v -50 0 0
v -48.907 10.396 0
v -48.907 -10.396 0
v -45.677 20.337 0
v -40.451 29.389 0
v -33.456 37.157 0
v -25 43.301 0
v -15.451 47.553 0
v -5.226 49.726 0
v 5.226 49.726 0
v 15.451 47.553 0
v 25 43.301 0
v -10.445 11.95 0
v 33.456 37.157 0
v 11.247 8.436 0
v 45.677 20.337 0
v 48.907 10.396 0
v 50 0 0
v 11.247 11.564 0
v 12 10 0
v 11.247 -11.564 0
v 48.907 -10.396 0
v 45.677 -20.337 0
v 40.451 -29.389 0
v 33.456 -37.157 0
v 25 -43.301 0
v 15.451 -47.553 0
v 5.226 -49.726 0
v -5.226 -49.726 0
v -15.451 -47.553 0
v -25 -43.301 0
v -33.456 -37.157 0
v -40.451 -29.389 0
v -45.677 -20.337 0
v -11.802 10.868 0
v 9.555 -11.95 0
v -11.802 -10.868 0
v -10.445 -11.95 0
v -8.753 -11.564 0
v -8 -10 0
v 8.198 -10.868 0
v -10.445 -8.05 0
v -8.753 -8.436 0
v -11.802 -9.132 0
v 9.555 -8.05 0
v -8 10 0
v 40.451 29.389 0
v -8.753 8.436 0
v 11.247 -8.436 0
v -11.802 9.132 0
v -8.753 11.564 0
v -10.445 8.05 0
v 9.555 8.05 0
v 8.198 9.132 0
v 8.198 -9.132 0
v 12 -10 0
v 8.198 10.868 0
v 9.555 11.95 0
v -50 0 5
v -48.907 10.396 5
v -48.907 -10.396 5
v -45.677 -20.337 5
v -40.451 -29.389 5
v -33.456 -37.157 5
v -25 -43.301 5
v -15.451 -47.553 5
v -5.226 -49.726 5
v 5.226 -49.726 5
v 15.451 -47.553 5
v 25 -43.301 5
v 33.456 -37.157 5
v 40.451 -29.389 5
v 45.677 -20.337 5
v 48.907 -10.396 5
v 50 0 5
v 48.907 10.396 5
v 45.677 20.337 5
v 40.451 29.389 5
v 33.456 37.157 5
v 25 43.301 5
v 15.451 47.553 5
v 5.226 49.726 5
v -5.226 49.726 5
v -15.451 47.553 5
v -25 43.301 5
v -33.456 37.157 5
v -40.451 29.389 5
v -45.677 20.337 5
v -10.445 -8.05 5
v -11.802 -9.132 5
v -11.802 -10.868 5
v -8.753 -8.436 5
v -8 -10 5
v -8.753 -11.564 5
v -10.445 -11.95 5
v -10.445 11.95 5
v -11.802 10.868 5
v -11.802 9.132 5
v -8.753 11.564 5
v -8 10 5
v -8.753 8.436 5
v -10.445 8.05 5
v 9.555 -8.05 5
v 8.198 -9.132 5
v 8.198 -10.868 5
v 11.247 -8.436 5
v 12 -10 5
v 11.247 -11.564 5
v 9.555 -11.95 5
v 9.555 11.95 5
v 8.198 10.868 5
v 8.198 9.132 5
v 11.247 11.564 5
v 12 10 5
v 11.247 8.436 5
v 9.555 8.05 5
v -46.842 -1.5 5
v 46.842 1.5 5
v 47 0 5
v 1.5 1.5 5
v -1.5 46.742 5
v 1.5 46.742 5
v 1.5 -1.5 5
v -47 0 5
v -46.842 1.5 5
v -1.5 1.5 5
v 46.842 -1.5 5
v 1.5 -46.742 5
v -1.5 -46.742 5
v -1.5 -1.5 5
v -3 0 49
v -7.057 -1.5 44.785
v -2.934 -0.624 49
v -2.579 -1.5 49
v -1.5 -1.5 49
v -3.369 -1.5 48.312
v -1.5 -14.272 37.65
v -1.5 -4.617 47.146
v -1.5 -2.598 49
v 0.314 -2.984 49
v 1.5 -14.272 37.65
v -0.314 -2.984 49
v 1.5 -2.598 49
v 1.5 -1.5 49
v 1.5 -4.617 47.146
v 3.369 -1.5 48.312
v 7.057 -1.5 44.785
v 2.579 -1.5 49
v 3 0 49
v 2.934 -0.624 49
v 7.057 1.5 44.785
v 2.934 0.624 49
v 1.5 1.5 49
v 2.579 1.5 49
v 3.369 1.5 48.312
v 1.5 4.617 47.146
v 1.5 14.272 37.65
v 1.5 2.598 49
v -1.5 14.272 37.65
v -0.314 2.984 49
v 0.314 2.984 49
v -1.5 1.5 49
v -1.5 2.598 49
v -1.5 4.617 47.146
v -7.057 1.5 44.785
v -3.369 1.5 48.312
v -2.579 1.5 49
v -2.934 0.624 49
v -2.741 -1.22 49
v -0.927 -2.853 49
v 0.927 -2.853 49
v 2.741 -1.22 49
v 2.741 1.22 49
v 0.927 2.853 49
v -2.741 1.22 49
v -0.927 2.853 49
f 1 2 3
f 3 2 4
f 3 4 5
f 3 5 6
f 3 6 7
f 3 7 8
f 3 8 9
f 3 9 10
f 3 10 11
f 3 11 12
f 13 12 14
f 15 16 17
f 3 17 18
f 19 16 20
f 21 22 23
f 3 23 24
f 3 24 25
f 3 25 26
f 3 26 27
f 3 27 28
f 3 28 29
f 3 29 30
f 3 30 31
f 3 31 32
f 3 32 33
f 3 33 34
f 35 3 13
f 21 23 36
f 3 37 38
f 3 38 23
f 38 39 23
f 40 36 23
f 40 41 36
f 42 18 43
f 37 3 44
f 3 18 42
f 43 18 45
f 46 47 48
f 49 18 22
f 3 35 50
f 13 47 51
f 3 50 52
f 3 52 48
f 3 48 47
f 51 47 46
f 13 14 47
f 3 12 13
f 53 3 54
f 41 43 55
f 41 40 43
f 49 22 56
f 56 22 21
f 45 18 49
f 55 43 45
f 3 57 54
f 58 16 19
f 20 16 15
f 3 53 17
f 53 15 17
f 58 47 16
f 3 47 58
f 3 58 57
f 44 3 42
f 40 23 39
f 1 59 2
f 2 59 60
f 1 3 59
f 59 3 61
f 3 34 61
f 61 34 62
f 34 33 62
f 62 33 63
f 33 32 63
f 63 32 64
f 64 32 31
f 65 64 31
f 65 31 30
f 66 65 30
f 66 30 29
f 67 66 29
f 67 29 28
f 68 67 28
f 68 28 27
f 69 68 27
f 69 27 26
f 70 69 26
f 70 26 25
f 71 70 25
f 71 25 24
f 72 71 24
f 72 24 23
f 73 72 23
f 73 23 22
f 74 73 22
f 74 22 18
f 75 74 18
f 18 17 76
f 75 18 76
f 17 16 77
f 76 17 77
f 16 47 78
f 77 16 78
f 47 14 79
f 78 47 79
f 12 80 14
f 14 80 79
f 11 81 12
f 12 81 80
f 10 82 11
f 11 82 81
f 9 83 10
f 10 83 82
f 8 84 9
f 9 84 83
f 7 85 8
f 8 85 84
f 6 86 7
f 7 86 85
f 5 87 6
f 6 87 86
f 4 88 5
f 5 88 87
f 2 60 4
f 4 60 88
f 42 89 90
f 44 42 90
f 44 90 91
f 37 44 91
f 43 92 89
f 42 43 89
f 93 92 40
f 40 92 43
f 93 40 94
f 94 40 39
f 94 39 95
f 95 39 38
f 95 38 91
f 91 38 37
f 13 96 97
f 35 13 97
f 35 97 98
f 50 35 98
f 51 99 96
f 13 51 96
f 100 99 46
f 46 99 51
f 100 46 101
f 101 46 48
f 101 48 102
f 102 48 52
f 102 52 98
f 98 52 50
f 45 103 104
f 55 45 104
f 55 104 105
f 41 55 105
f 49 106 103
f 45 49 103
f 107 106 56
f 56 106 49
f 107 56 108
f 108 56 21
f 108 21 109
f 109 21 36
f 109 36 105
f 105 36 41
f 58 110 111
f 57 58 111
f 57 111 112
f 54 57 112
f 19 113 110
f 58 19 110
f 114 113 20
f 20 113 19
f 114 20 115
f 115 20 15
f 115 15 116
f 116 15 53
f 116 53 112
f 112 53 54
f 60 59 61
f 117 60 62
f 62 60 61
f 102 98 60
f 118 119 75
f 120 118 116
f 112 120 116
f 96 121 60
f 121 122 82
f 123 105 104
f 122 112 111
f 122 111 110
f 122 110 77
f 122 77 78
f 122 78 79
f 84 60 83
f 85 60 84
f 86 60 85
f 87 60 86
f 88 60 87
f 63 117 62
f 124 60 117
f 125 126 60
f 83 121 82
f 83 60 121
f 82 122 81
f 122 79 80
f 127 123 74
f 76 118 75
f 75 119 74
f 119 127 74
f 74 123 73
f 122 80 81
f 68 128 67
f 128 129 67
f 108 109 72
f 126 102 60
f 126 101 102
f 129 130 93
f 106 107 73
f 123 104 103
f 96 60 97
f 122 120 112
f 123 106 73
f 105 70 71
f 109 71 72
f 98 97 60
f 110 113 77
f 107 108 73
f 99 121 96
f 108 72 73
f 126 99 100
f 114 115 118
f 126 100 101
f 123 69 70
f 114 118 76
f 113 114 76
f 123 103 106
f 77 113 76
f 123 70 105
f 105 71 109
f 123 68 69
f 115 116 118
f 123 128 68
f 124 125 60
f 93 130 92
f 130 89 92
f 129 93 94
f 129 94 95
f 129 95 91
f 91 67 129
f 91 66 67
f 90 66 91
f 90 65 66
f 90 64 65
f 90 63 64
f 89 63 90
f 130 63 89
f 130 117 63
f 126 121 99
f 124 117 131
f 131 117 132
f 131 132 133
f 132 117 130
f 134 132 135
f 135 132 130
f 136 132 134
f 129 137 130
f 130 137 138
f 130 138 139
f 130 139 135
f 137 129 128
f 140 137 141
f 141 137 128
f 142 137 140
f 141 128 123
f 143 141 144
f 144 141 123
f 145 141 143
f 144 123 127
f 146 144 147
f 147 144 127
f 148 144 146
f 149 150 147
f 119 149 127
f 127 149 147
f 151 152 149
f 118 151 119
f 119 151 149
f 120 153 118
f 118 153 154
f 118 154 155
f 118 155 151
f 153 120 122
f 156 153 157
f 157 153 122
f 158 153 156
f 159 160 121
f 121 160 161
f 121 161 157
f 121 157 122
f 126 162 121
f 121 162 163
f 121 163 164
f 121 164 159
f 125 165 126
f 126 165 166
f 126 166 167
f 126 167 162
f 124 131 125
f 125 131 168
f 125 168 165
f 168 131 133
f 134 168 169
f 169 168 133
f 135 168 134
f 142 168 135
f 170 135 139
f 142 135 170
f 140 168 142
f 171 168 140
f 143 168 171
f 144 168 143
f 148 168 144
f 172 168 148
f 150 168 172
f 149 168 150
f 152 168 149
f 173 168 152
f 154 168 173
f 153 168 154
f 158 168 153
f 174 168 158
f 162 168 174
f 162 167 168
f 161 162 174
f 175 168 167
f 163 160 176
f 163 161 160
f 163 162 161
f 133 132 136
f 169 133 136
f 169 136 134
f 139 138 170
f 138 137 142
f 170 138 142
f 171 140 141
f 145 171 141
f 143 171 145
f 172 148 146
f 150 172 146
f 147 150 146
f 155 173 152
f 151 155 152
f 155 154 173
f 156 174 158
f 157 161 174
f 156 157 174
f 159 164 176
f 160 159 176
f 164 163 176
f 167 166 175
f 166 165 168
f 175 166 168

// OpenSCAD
//Diametro
diam=100;
//Grosor
g=3;
//Radio tornillo
rt=2;
rad=diam/2;
intersection(){
union(){
translate([-rad,-g/2,0])
cube([diam,g,rad-1]);
translate([-g/2,-rad,0])
cube([g,diam,rad-1]);
}
translate([0,0,2])
cylinder(h=rad, r1=rad, r2=0);
}
difference(){
cylinder(h=5, r=rad);
union(){
translate([10,10,-5])
cylinder(h=15, r=rt);
translate([10,-10,-5])
cylinder(h=15, r=rt);
translate([-10,10,-5])
cylinder(h=15, r=rt);
translate([-10,-10,-5])
cylinder(h=15, r=rt);
}
}
